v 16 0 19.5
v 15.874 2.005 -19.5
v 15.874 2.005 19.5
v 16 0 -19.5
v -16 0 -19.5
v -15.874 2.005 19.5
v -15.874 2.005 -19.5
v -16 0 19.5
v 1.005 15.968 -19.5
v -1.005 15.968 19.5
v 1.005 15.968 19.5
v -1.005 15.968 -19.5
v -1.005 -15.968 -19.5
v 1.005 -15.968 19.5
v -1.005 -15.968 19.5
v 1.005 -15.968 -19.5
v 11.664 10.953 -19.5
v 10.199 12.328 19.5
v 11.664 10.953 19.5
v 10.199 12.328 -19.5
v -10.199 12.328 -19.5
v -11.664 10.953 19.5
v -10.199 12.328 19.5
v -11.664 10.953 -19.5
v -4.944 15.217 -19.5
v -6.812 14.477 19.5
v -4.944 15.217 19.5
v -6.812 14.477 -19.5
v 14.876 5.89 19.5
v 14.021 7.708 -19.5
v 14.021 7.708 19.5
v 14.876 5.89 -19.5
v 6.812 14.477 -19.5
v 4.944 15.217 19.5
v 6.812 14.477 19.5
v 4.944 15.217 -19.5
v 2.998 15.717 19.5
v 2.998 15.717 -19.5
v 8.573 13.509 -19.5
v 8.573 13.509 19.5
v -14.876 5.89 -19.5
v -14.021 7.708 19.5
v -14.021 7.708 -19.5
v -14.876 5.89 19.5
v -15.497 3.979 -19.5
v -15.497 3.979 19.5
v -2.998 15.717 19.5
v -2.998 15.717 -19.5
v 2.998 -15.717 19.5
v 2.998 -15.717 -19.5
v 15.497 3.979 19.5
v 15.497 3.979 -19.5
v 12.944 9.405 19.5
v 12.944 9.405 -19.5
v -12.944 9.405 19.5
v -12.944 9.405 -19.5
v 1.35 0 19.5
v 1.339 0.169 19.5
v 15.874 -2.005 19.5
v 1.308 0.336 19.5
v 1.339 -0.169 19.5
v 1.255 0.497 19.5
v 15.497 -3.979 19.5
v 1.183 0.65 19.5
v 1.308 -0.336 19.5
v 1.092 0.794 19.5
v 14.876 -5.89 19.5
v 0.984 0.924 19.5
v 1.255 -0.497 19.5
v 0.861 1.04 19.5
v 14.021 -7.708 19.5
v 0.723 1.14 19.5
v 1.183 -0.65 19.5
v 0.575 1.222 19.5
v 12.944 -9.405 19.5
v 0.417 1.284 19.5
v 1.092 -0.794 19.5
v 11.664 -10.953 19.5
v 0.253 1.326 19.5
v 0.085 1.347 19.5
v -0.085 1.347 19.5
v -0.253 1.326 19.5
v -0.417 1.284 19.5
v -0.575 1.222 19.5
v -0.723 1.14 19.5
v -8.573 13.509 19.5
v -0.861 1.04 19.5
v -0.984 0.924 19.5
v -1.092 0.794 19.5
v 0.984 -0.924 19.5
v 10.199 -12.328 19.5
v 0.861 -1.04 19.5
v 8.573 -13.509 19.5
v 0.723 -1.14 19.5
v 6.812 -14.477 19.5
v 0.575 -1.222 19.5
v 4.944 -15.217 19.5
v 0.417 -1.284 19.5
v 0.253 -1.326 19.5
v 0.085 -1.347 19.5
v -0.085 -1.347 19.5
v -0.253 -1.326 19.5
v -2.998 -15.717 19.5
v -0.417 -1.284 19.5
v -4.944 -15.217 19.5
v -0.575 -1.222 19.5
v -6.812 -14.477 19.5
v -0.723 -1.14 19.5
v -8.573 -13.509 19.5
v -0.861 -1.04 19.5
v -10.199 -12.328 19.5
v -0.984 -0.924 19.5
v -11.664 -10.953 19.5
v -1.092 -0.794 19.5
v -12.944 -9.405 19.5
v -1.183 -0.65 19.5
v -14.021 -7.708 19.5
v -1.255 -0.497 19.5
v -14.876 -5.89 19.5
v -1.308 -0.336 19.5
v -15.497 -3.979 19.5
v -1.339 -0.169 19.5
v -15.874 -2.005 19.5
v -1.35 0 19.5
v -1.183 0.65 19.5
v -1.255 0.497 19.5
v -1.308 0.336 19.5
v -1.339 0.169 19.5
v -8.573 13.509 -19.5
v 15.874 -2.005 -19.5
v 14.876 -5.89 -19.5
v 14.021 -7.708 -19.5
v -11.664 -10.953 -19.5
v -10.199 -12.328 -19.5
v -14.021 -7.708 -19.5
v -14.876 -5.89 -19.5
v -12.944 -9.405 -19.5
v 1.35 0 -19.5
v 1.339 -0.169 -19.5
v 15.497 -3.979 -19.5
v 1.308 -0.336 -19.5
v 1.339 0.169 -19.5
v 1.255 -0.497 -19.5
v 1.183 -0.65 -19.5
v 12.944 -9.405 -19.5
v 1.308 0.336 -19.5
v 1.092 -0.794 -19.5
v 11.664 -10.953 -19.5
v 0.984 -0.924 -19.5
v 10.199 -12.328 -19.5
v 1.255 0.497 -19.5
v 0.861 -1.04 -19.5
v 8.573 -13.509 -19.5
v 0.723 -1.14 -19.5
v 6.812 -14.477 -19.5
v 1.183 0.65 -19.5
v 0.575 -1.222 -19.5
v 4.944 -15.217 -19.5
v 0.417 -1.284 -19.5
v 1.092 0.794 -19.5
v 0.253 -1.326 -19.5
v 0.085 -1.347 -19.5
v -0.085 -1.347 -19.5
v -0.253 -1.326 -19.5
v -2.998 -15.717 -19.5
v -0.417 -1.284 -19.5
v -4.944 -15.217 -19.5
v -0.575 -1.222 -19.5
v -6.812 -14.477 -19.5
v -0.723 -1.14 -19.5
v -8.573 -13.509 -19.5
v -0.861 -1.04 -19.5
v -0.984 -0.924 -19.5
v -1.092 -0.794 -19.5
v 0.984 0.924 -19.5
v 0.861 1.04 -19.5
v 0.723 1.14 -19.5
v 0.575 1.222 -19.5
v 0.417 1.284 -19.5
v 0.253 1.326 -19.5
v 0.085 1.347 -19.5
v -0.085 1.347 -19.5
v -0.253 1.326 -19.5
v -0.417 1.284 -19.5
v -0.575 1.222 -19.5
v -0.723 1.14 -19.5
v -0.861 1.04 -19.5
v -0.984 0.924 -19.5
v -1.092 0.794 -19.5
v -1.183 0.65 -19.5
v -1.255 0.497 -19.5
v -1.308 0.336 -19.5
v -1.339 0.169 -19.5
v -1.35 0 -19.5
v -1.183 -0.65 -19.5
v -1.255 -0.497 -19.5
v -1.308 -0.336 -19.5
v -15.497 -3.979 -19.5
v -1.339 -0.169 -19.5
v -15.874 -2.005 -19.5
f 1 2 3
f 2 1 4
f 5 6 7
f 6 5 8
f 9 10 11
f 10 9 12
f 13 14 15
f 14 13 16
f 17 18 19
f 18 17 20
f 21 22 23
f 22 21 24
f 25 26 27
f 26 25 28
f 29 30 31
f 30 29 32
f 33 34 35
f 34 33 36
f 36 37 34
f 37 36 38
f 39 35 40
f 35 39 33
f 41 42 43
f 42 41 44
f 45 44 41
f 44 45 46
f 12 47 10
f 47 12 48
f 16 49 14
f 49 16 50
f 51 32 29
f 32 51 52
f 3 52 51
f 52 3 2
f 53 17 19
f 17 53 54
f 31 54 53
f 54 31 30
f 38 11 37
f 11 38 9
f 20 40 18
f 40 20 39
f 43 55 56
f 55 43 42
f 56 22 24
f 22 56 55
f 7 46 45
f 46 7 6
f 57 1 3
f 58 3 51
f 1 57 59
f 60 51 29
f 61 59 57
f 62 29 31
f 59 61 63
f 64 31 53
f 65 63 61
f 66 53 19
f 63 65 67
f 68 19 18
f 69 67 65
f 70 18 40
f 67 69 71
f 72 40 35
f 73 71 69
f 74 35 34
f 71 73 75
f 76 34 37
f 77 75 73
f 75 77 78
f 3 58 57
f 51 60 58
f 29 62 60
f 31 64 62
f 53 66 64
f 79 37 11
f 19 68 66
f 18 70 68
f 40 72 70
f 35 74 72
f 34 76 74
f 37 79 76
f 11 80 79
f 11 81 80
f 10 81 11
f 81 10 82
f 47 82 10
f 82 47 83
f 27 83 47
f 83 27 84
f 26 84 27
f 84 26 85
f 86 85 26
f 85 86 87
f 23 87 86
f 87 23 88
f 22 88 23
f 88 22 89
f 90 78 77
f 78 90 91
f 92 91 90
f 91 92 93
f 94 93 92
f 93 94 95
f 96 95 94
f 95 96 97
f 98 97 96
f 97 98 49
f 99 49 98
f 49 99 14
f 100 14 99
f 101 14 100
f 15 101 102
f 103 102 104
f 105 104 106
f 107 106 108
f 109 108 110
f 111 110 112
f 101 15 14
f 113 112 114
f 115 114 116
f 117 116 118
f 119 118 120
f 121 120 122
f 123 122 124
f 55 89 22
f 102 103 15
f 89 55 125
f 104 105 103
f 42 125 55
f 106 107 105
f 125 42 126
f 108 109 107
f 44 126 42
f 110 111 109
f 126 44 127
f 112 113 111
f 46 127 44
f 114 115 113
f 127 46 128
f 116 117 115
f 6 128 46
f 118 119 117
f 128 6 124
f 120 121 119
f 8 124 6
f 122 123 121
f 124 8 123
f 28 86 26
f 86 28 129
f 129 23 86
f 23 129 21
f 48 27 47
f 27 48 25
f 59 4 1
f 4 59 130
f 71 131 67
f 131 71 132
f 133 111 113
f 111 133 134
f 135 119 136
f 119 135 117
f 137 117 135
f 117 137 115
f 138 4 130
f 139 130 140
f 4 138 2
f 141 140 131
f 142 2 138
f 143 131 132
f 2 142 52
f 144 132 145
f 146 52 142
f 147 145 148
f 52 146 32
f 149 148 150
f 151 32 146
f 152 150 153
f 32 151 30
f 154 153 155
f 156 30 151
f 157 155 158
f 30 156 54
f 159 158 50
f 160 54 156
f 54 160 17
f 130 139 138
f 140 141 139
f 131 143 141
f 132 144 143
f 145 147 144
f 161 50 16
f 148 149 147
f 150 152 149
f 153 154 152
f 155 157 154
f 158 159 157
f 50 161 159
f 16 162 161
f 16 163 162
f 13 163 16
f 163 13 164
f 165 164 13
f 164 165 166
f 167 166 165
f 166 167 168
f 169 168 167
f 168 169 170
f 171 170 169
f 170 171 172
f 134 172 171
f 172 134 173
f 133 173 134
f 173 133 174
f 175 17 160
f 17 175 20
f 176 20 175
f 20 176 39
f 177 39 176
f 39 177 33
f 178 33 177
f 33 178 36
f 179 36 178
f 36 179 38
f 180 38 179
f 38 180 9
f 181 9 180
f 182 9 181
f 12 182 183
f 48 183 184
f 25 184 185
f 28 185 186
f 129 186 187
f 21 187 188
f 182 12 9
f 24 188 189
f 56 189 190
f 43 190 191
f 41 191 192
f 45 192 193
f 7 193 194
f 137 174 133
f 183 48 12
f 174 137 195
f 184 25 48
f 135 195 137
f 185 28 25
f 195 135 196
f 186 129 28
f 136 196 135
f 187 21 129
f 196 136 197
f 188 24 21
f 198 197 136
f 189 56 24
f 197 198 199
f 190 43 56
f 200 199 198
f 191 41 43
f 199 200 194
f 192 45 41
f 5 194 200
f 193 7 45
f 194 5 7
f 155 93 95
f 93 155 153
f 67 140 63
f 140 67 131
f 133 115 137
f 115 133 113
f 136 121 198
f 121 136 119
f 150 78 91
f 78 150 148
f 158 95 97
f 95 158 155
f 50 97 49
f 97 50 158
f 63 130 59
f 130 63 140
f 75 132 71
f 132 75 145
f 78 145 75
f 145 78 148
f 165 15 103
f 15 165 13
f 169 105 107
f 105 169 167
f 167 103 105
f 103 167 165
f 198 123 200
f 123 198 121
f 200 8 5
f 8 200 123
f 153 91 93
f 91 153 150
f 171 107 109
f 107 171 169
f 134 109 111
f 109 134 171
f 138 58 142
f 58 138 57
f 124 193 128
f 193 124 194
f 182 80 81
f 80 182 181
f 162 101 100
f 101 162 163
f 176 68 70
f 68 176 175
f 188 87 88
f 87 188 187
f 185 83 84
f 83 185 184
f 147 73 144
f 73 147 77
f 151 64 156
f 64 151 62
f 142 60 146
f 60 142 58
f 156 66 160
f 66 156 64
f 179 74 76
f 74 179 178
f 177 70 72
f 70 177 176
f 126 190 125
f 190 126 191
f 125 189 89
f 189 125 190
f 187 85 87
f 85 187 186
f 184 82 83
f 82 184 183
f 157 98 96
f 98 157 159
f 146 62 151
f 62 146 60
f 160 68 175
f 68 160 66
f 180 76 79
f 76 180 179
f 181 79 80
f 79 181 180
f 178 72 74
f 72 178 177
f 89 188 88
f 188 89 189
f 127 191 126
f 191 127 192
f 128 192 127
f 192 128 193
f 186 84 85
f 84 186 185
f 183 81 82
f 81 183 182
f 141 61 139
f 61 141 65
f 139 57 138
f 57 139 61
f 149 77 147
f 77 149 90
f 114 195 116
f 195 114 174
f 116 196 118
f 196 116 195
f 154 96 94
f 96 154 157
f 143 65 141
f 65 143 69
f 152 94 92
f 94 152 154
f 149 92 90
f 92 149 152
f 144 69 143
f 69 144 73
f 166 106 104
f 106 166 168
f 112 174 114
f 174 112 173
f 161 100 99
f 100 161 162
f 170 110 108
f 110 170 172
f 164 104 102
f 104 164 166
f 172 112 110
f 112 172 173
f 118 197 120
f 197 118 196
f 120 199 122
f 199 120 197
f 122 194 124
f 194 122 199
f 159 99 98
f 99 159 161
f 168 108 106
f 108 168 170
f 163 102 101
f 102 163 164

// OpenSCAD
$fn = 50;


difference() {
	union() {
		translate(v = [0, 0, -19.5000000000]) {
			cylinder(h = 39, r = 16.0000000000);
		}
	}
	union() {
		translate(v = [0, 0, -100.0000000000]) {
			cylinder(h = 200, r = 1.3500000000);
		}
	}
}
